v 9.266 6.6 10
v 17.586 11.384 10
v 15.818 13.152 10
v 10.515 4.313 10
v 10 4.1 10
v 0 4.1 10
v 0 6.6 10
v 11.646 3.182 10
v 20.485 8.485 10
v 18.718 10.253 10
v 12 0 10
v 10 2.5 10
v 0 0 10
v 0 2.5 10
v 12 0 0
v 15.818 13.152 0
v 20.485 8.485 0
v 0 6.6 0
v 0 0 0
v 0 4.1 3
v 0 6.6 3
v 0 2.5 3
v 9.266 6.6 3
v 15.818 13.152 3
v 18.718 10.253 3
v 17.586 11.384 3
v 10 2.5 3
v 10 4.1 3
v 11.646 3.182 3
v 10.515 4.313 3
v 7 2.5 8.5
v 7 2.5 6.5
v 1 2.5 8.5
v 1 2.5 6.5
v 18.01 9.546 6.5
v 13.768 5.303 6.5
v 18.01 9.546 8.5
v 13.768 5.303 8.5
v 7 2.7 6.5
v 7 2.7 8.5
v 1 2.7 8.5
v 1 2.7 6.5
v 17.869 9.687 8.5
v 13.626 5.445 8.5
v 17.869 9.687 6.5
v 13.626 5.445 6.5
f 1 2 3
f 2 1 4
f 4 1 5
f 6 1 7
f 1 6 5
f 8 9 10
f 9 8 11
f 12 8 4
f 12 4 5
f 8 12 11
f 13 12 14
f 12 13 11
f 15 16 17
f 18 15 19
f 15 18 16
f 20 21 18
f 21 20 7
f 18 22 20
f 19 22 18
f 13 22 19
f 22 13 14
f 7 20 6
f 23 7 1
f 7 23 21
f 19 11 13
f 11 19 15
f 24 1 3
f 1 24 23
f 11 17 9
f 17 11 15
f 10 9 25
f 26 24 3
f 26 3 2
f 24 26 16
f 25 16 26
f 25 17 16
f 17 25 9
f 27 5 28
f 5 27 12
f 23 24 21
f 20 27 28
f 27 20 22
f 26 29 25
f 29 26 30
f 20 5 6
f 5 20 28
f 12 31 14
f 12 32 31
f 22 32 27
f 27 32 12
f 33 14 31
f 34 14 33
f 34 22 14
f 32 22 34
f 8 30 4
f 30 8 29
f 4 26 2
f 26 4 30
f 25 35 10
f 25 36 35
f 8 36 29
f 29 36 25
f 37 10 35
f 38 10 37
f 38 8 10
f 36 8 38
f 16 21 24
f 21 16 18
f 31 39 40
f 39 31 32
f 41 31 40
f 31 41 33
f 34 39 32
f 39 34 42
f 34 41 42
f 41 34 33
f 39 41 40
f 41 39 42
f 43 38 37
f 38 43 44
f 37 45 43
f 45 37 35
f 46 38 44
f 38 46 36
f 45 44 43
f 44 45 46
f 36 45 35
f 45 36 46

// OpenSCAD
br_len = 12;

difference() {
    union() {
cube([br_len, 6.6, 10]);
     translate([br_len, 0, 0])
rotate([0, 0, 45])   
     cube([br_len, 6.6, 10]);   
        
    }
        translate([0, 2.5, 3])

    cube([10, 1.6, 8]);
    

translate([br_len, 0, 0])
rotate([0, 0, 45])

    translate([br_len-10, 2.5, 3])
    cube([40, 1.6, 40]);
}

hull() {
    cube([br_len, 6.6, 3]);
    translate([br_len, 0, 0])
rotate([0, 0, 45])
    cube([br_len, 6.6, 3]);
}

translate([1,0,10-1.5-2])
cube([6, 2.7, 2]);

translate([br_len, 0, 0])
rotate([0, 0, 45])
translate([br_len-7, 0, 10-1.5-2])
cube([6, 2.7, 2]);
